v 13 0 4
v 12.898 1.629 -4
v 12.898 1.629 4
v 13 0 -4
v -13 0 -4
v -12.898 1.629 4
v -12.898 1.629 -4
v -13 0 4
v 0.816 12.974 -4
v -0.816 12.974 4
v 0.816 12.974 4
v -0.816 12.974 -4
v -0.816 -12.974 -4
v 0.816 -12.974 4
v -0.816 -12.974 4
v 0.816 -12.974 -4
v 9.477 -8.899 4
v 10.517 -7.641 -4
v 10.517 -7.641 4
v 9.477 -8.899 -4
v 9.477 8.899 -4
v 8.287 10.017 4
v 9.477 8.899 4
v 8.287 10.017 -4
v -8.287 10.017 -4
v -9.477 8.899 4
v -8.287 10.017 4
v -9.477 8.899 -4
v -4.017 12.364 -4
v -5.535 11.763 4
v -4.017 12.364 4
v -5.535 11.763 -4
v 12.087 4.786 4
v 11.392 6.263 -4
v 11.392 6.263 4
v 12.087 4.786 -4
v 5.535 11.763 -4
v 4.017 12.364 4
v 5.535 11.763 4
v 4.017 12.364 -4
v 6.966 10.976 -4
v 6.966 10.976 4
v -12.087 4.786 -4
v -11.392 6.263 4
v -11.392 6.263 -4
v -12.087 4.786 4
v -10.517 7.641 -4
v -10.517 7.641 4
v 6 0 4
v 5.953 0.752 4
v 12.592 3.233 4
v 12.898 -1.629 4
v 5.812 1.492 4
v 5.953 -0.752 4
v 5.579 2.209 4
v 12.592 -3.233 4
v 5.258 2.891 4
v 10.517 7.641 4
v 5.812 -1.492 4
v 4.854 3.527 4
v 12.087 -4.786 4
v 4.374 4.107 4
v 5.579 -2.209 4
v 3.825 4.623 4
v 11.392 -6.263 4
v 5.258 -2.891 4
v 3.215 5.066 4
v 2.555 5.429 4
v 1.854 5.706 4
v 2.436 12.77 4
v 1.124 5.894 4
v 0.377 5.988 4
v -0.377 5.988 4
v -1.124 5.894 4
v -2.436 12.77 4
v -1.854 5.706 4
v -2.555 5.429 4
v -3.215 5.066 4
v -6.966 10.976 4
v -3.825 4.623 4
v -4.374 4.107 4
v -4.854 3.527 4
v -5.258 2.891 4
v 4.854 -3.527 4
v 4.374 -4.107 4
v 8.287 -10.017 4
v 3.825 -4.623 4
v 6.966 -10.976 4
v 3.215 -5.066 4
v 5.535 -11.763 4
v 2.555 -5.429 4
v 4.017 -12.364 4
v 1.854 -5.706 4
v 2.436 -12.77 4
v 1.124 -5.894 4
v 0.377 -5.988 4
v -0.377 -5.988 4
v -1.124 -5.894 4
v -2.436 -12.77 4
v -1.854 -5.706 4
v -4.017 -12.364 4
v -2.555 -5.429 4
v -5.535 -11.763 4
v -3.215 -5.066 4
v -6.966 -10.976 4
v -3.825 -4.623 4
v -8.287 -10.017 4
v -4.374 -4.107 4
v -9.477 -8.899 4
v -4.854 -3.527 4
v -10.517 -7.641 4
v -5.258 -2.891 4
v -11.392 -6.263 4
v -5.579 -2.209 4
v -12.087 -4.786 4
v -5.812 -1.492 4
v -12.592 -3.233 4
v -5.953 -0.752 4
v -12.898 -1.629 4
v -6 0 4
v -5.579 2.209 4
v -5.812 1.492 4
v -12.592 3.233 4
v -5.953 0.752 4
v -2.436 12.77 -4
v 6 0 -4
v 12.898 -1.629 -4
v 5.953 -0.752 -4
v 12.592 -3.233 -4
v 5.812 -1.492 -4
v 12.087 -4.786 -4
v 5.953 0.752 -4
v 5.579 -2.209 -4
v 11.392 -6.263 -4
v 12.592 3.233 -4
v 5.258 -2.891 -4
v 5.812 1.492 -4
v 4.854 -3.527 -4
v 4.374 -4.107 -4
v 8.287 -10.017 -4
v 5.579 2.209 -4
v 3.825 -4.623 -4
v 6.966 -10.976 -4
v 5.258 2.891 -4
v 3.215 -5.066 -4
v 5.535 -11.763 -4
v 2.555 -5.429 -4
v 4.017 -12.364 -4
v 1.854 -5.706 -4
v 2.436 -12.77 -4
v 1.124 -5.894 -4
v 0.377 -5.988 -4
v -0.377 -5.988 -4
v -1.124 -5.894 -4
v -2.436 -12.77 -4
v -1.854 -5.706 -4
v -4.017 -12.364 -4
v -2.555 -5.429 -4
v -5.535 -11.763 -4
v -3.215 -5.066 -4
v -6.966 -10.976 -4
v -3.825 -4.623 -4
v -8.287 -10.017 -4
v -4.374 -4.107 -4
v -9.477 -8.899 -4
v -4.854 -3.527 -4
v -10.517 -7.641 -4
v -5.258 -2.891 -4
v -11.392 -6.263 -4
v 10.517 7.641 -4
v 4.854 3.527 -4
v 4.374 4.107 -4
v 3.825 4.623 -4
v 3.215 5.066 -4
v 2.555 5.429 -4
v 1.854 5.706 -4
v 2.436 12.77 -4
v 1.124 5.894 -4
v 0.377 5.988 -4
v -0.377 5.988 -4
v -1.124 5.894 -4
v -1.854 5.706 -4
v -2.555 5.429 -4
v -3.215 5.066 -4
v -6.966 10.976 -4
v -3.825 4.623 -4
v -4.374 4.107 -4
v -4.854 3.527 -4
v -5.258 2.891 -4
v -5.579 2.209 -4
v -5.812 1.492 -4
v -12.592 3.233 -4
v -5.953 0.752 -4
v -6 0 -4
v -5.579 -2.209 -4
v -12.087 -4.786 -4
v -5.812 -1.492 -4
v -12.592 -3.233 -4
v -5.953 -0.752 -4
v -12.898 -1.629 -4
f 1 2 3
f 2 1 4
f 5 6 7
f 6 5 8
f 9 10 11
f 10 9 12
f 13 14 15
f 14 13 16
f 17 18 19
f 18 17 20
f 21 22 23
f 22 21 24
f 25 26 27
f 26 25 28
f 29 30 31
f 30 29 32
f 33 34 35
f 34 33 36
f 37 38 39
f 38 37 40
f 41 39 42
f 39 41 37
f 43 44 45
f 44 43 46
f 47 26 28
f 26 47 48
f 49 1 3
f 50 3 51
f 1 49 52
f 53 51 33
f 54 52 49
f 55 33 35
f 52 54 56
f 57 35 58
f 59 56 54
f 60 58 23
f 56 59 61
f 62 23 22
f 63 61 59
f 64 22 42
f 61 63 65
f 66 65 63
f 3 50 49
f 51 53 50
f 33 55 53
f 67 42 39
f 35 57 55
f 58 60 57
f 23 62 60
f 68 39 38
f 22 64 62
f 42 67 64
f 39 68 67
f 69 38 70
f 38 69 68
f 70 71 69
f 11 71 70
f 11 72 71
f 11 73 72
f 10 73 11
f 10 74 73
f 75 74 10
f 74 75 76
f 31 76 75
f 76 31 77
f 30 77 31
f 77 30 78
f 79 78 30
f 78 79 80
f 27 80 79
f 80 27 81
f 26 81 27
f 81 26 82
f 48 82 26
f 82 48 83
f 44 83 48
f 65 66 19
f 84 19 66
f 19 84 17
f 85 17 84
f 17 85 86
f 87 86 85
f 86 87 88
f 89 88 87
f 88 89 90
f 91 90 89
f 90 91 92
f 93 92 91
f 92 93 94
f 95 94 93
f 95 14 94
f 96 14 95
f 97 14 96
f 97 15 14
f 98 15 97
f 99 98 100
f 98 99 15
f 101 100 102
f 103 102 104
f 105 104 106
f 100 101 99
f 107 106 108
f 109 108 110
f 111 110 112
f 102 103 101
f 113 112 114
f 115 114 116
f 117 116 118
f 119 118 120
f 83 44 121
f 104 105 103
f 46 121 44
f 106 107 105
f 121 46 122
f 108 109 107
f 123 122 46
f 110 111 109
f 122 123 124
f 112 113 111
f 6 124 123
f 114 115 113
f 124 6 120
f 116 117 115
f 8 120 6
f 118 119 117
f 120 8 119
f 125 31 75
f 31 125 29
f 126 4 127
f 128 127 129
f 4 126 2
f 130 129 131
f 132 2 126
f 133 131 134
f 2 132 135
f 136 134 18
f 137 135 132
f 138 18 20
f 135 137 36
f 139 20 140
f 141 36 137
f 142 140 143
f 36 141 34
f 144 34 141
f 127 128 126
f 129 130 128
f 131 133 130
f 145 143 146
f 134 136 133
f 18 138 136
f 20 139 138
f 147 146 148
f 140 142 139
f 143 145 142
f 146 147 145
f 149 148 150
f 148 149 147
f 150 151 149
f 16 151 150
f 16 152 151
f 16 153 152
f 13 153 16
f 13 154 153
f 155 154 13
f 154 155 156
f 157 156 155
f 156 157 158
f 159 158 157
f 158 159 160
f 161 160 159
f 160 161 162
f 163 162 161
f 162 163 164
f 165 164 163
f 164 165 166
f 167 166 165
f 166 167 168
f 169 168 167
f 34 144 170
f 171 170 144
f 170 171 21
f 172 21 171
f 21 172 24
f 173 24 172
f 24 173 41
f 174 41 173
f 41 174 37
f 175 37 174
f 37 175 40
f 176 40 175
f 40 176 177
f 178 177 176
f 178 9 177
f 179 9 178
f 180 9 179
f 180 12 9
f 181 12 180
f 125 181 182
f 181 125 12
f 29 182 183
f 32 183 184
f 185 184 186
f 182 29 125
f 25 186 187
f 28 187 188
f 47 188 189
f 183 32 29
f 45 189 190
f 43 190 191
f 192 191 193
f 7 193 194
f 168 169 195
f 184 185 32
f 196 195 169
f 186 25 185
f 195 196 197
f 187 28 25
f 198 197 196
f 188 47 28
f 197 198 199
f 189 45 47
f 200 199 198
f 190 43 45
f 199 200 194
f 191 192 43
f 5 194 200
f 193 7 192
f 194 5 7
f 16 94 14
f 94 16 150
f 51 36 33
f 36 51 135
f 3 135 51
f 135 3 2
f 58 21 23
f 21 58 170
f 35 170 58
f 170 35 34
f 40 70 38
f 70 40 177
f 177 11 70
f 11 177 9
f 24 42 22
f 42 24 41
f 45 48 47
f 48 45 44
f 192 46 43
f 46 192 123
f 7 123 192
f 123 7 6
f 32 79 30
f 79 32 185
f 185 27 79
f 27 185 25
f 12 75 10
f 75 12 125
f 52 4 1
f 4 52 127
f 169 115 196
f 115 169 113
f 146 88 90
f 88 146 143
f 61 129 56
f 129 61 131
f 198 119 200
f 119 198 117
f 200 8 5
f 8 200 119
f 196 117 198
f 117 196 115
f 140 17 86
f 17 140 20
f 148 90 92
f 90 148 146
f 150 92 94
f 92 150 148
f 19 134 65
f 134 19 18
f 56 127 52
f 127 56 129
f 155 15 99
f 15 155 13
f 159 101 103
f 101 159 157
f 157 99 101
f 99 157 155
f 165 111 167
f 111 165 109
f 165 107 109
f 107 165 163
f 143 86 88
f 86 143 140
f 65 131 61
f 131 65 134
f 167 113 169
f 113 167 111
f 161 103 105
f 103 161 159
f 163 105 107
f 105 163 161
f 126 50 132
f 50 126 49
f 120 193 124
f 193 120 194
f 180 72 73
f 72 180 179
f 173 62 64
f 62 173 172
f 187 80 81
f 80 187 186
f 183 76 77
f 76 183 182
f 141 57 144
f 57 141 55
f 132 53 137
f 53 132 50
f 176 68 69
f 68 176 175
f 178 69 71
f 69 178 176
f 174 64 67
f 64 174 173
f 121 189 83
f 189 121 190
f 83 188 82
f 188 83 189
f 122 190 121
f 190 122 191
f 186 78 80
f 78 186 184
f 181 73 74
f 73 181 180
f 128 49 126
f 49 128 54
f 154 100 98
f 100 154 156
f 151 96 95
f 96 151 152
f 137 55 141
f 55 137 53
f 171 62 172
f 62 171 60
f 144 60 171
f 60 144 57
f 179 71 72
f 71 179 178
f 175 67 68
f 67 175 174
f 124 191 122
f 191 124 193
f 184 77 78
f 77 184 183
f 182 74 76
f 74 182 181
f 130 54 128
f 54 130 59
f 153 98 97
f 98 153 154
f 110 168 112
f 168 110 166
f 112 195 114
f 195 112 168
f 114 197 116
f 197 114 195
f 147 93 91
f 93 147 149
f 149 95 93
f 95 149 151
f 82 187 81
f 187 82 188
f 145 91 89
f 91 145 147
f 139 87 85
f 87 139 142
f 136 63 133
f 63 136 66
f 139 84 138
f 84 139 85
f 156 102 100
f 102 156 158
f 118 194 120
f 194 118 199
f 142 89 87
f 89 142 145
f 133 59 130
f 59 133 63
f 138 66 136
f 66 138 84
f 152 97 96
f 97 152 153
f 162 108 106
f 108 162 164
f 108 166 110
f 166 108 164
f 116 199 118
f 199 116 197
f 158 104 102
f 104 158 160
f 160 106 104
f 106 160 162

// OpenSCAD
$fn = 50;


difference() {
	union() {
		translate(v = [0, 0, -4.0000000000]) {
			cylinder(h = 8, r = 13.0000000000);
		}
	}
	union() {
		translate(v = [0, 0, -100.0000000000]) {
			cylinder(h = 200, r = 6);
		}
	}
}
